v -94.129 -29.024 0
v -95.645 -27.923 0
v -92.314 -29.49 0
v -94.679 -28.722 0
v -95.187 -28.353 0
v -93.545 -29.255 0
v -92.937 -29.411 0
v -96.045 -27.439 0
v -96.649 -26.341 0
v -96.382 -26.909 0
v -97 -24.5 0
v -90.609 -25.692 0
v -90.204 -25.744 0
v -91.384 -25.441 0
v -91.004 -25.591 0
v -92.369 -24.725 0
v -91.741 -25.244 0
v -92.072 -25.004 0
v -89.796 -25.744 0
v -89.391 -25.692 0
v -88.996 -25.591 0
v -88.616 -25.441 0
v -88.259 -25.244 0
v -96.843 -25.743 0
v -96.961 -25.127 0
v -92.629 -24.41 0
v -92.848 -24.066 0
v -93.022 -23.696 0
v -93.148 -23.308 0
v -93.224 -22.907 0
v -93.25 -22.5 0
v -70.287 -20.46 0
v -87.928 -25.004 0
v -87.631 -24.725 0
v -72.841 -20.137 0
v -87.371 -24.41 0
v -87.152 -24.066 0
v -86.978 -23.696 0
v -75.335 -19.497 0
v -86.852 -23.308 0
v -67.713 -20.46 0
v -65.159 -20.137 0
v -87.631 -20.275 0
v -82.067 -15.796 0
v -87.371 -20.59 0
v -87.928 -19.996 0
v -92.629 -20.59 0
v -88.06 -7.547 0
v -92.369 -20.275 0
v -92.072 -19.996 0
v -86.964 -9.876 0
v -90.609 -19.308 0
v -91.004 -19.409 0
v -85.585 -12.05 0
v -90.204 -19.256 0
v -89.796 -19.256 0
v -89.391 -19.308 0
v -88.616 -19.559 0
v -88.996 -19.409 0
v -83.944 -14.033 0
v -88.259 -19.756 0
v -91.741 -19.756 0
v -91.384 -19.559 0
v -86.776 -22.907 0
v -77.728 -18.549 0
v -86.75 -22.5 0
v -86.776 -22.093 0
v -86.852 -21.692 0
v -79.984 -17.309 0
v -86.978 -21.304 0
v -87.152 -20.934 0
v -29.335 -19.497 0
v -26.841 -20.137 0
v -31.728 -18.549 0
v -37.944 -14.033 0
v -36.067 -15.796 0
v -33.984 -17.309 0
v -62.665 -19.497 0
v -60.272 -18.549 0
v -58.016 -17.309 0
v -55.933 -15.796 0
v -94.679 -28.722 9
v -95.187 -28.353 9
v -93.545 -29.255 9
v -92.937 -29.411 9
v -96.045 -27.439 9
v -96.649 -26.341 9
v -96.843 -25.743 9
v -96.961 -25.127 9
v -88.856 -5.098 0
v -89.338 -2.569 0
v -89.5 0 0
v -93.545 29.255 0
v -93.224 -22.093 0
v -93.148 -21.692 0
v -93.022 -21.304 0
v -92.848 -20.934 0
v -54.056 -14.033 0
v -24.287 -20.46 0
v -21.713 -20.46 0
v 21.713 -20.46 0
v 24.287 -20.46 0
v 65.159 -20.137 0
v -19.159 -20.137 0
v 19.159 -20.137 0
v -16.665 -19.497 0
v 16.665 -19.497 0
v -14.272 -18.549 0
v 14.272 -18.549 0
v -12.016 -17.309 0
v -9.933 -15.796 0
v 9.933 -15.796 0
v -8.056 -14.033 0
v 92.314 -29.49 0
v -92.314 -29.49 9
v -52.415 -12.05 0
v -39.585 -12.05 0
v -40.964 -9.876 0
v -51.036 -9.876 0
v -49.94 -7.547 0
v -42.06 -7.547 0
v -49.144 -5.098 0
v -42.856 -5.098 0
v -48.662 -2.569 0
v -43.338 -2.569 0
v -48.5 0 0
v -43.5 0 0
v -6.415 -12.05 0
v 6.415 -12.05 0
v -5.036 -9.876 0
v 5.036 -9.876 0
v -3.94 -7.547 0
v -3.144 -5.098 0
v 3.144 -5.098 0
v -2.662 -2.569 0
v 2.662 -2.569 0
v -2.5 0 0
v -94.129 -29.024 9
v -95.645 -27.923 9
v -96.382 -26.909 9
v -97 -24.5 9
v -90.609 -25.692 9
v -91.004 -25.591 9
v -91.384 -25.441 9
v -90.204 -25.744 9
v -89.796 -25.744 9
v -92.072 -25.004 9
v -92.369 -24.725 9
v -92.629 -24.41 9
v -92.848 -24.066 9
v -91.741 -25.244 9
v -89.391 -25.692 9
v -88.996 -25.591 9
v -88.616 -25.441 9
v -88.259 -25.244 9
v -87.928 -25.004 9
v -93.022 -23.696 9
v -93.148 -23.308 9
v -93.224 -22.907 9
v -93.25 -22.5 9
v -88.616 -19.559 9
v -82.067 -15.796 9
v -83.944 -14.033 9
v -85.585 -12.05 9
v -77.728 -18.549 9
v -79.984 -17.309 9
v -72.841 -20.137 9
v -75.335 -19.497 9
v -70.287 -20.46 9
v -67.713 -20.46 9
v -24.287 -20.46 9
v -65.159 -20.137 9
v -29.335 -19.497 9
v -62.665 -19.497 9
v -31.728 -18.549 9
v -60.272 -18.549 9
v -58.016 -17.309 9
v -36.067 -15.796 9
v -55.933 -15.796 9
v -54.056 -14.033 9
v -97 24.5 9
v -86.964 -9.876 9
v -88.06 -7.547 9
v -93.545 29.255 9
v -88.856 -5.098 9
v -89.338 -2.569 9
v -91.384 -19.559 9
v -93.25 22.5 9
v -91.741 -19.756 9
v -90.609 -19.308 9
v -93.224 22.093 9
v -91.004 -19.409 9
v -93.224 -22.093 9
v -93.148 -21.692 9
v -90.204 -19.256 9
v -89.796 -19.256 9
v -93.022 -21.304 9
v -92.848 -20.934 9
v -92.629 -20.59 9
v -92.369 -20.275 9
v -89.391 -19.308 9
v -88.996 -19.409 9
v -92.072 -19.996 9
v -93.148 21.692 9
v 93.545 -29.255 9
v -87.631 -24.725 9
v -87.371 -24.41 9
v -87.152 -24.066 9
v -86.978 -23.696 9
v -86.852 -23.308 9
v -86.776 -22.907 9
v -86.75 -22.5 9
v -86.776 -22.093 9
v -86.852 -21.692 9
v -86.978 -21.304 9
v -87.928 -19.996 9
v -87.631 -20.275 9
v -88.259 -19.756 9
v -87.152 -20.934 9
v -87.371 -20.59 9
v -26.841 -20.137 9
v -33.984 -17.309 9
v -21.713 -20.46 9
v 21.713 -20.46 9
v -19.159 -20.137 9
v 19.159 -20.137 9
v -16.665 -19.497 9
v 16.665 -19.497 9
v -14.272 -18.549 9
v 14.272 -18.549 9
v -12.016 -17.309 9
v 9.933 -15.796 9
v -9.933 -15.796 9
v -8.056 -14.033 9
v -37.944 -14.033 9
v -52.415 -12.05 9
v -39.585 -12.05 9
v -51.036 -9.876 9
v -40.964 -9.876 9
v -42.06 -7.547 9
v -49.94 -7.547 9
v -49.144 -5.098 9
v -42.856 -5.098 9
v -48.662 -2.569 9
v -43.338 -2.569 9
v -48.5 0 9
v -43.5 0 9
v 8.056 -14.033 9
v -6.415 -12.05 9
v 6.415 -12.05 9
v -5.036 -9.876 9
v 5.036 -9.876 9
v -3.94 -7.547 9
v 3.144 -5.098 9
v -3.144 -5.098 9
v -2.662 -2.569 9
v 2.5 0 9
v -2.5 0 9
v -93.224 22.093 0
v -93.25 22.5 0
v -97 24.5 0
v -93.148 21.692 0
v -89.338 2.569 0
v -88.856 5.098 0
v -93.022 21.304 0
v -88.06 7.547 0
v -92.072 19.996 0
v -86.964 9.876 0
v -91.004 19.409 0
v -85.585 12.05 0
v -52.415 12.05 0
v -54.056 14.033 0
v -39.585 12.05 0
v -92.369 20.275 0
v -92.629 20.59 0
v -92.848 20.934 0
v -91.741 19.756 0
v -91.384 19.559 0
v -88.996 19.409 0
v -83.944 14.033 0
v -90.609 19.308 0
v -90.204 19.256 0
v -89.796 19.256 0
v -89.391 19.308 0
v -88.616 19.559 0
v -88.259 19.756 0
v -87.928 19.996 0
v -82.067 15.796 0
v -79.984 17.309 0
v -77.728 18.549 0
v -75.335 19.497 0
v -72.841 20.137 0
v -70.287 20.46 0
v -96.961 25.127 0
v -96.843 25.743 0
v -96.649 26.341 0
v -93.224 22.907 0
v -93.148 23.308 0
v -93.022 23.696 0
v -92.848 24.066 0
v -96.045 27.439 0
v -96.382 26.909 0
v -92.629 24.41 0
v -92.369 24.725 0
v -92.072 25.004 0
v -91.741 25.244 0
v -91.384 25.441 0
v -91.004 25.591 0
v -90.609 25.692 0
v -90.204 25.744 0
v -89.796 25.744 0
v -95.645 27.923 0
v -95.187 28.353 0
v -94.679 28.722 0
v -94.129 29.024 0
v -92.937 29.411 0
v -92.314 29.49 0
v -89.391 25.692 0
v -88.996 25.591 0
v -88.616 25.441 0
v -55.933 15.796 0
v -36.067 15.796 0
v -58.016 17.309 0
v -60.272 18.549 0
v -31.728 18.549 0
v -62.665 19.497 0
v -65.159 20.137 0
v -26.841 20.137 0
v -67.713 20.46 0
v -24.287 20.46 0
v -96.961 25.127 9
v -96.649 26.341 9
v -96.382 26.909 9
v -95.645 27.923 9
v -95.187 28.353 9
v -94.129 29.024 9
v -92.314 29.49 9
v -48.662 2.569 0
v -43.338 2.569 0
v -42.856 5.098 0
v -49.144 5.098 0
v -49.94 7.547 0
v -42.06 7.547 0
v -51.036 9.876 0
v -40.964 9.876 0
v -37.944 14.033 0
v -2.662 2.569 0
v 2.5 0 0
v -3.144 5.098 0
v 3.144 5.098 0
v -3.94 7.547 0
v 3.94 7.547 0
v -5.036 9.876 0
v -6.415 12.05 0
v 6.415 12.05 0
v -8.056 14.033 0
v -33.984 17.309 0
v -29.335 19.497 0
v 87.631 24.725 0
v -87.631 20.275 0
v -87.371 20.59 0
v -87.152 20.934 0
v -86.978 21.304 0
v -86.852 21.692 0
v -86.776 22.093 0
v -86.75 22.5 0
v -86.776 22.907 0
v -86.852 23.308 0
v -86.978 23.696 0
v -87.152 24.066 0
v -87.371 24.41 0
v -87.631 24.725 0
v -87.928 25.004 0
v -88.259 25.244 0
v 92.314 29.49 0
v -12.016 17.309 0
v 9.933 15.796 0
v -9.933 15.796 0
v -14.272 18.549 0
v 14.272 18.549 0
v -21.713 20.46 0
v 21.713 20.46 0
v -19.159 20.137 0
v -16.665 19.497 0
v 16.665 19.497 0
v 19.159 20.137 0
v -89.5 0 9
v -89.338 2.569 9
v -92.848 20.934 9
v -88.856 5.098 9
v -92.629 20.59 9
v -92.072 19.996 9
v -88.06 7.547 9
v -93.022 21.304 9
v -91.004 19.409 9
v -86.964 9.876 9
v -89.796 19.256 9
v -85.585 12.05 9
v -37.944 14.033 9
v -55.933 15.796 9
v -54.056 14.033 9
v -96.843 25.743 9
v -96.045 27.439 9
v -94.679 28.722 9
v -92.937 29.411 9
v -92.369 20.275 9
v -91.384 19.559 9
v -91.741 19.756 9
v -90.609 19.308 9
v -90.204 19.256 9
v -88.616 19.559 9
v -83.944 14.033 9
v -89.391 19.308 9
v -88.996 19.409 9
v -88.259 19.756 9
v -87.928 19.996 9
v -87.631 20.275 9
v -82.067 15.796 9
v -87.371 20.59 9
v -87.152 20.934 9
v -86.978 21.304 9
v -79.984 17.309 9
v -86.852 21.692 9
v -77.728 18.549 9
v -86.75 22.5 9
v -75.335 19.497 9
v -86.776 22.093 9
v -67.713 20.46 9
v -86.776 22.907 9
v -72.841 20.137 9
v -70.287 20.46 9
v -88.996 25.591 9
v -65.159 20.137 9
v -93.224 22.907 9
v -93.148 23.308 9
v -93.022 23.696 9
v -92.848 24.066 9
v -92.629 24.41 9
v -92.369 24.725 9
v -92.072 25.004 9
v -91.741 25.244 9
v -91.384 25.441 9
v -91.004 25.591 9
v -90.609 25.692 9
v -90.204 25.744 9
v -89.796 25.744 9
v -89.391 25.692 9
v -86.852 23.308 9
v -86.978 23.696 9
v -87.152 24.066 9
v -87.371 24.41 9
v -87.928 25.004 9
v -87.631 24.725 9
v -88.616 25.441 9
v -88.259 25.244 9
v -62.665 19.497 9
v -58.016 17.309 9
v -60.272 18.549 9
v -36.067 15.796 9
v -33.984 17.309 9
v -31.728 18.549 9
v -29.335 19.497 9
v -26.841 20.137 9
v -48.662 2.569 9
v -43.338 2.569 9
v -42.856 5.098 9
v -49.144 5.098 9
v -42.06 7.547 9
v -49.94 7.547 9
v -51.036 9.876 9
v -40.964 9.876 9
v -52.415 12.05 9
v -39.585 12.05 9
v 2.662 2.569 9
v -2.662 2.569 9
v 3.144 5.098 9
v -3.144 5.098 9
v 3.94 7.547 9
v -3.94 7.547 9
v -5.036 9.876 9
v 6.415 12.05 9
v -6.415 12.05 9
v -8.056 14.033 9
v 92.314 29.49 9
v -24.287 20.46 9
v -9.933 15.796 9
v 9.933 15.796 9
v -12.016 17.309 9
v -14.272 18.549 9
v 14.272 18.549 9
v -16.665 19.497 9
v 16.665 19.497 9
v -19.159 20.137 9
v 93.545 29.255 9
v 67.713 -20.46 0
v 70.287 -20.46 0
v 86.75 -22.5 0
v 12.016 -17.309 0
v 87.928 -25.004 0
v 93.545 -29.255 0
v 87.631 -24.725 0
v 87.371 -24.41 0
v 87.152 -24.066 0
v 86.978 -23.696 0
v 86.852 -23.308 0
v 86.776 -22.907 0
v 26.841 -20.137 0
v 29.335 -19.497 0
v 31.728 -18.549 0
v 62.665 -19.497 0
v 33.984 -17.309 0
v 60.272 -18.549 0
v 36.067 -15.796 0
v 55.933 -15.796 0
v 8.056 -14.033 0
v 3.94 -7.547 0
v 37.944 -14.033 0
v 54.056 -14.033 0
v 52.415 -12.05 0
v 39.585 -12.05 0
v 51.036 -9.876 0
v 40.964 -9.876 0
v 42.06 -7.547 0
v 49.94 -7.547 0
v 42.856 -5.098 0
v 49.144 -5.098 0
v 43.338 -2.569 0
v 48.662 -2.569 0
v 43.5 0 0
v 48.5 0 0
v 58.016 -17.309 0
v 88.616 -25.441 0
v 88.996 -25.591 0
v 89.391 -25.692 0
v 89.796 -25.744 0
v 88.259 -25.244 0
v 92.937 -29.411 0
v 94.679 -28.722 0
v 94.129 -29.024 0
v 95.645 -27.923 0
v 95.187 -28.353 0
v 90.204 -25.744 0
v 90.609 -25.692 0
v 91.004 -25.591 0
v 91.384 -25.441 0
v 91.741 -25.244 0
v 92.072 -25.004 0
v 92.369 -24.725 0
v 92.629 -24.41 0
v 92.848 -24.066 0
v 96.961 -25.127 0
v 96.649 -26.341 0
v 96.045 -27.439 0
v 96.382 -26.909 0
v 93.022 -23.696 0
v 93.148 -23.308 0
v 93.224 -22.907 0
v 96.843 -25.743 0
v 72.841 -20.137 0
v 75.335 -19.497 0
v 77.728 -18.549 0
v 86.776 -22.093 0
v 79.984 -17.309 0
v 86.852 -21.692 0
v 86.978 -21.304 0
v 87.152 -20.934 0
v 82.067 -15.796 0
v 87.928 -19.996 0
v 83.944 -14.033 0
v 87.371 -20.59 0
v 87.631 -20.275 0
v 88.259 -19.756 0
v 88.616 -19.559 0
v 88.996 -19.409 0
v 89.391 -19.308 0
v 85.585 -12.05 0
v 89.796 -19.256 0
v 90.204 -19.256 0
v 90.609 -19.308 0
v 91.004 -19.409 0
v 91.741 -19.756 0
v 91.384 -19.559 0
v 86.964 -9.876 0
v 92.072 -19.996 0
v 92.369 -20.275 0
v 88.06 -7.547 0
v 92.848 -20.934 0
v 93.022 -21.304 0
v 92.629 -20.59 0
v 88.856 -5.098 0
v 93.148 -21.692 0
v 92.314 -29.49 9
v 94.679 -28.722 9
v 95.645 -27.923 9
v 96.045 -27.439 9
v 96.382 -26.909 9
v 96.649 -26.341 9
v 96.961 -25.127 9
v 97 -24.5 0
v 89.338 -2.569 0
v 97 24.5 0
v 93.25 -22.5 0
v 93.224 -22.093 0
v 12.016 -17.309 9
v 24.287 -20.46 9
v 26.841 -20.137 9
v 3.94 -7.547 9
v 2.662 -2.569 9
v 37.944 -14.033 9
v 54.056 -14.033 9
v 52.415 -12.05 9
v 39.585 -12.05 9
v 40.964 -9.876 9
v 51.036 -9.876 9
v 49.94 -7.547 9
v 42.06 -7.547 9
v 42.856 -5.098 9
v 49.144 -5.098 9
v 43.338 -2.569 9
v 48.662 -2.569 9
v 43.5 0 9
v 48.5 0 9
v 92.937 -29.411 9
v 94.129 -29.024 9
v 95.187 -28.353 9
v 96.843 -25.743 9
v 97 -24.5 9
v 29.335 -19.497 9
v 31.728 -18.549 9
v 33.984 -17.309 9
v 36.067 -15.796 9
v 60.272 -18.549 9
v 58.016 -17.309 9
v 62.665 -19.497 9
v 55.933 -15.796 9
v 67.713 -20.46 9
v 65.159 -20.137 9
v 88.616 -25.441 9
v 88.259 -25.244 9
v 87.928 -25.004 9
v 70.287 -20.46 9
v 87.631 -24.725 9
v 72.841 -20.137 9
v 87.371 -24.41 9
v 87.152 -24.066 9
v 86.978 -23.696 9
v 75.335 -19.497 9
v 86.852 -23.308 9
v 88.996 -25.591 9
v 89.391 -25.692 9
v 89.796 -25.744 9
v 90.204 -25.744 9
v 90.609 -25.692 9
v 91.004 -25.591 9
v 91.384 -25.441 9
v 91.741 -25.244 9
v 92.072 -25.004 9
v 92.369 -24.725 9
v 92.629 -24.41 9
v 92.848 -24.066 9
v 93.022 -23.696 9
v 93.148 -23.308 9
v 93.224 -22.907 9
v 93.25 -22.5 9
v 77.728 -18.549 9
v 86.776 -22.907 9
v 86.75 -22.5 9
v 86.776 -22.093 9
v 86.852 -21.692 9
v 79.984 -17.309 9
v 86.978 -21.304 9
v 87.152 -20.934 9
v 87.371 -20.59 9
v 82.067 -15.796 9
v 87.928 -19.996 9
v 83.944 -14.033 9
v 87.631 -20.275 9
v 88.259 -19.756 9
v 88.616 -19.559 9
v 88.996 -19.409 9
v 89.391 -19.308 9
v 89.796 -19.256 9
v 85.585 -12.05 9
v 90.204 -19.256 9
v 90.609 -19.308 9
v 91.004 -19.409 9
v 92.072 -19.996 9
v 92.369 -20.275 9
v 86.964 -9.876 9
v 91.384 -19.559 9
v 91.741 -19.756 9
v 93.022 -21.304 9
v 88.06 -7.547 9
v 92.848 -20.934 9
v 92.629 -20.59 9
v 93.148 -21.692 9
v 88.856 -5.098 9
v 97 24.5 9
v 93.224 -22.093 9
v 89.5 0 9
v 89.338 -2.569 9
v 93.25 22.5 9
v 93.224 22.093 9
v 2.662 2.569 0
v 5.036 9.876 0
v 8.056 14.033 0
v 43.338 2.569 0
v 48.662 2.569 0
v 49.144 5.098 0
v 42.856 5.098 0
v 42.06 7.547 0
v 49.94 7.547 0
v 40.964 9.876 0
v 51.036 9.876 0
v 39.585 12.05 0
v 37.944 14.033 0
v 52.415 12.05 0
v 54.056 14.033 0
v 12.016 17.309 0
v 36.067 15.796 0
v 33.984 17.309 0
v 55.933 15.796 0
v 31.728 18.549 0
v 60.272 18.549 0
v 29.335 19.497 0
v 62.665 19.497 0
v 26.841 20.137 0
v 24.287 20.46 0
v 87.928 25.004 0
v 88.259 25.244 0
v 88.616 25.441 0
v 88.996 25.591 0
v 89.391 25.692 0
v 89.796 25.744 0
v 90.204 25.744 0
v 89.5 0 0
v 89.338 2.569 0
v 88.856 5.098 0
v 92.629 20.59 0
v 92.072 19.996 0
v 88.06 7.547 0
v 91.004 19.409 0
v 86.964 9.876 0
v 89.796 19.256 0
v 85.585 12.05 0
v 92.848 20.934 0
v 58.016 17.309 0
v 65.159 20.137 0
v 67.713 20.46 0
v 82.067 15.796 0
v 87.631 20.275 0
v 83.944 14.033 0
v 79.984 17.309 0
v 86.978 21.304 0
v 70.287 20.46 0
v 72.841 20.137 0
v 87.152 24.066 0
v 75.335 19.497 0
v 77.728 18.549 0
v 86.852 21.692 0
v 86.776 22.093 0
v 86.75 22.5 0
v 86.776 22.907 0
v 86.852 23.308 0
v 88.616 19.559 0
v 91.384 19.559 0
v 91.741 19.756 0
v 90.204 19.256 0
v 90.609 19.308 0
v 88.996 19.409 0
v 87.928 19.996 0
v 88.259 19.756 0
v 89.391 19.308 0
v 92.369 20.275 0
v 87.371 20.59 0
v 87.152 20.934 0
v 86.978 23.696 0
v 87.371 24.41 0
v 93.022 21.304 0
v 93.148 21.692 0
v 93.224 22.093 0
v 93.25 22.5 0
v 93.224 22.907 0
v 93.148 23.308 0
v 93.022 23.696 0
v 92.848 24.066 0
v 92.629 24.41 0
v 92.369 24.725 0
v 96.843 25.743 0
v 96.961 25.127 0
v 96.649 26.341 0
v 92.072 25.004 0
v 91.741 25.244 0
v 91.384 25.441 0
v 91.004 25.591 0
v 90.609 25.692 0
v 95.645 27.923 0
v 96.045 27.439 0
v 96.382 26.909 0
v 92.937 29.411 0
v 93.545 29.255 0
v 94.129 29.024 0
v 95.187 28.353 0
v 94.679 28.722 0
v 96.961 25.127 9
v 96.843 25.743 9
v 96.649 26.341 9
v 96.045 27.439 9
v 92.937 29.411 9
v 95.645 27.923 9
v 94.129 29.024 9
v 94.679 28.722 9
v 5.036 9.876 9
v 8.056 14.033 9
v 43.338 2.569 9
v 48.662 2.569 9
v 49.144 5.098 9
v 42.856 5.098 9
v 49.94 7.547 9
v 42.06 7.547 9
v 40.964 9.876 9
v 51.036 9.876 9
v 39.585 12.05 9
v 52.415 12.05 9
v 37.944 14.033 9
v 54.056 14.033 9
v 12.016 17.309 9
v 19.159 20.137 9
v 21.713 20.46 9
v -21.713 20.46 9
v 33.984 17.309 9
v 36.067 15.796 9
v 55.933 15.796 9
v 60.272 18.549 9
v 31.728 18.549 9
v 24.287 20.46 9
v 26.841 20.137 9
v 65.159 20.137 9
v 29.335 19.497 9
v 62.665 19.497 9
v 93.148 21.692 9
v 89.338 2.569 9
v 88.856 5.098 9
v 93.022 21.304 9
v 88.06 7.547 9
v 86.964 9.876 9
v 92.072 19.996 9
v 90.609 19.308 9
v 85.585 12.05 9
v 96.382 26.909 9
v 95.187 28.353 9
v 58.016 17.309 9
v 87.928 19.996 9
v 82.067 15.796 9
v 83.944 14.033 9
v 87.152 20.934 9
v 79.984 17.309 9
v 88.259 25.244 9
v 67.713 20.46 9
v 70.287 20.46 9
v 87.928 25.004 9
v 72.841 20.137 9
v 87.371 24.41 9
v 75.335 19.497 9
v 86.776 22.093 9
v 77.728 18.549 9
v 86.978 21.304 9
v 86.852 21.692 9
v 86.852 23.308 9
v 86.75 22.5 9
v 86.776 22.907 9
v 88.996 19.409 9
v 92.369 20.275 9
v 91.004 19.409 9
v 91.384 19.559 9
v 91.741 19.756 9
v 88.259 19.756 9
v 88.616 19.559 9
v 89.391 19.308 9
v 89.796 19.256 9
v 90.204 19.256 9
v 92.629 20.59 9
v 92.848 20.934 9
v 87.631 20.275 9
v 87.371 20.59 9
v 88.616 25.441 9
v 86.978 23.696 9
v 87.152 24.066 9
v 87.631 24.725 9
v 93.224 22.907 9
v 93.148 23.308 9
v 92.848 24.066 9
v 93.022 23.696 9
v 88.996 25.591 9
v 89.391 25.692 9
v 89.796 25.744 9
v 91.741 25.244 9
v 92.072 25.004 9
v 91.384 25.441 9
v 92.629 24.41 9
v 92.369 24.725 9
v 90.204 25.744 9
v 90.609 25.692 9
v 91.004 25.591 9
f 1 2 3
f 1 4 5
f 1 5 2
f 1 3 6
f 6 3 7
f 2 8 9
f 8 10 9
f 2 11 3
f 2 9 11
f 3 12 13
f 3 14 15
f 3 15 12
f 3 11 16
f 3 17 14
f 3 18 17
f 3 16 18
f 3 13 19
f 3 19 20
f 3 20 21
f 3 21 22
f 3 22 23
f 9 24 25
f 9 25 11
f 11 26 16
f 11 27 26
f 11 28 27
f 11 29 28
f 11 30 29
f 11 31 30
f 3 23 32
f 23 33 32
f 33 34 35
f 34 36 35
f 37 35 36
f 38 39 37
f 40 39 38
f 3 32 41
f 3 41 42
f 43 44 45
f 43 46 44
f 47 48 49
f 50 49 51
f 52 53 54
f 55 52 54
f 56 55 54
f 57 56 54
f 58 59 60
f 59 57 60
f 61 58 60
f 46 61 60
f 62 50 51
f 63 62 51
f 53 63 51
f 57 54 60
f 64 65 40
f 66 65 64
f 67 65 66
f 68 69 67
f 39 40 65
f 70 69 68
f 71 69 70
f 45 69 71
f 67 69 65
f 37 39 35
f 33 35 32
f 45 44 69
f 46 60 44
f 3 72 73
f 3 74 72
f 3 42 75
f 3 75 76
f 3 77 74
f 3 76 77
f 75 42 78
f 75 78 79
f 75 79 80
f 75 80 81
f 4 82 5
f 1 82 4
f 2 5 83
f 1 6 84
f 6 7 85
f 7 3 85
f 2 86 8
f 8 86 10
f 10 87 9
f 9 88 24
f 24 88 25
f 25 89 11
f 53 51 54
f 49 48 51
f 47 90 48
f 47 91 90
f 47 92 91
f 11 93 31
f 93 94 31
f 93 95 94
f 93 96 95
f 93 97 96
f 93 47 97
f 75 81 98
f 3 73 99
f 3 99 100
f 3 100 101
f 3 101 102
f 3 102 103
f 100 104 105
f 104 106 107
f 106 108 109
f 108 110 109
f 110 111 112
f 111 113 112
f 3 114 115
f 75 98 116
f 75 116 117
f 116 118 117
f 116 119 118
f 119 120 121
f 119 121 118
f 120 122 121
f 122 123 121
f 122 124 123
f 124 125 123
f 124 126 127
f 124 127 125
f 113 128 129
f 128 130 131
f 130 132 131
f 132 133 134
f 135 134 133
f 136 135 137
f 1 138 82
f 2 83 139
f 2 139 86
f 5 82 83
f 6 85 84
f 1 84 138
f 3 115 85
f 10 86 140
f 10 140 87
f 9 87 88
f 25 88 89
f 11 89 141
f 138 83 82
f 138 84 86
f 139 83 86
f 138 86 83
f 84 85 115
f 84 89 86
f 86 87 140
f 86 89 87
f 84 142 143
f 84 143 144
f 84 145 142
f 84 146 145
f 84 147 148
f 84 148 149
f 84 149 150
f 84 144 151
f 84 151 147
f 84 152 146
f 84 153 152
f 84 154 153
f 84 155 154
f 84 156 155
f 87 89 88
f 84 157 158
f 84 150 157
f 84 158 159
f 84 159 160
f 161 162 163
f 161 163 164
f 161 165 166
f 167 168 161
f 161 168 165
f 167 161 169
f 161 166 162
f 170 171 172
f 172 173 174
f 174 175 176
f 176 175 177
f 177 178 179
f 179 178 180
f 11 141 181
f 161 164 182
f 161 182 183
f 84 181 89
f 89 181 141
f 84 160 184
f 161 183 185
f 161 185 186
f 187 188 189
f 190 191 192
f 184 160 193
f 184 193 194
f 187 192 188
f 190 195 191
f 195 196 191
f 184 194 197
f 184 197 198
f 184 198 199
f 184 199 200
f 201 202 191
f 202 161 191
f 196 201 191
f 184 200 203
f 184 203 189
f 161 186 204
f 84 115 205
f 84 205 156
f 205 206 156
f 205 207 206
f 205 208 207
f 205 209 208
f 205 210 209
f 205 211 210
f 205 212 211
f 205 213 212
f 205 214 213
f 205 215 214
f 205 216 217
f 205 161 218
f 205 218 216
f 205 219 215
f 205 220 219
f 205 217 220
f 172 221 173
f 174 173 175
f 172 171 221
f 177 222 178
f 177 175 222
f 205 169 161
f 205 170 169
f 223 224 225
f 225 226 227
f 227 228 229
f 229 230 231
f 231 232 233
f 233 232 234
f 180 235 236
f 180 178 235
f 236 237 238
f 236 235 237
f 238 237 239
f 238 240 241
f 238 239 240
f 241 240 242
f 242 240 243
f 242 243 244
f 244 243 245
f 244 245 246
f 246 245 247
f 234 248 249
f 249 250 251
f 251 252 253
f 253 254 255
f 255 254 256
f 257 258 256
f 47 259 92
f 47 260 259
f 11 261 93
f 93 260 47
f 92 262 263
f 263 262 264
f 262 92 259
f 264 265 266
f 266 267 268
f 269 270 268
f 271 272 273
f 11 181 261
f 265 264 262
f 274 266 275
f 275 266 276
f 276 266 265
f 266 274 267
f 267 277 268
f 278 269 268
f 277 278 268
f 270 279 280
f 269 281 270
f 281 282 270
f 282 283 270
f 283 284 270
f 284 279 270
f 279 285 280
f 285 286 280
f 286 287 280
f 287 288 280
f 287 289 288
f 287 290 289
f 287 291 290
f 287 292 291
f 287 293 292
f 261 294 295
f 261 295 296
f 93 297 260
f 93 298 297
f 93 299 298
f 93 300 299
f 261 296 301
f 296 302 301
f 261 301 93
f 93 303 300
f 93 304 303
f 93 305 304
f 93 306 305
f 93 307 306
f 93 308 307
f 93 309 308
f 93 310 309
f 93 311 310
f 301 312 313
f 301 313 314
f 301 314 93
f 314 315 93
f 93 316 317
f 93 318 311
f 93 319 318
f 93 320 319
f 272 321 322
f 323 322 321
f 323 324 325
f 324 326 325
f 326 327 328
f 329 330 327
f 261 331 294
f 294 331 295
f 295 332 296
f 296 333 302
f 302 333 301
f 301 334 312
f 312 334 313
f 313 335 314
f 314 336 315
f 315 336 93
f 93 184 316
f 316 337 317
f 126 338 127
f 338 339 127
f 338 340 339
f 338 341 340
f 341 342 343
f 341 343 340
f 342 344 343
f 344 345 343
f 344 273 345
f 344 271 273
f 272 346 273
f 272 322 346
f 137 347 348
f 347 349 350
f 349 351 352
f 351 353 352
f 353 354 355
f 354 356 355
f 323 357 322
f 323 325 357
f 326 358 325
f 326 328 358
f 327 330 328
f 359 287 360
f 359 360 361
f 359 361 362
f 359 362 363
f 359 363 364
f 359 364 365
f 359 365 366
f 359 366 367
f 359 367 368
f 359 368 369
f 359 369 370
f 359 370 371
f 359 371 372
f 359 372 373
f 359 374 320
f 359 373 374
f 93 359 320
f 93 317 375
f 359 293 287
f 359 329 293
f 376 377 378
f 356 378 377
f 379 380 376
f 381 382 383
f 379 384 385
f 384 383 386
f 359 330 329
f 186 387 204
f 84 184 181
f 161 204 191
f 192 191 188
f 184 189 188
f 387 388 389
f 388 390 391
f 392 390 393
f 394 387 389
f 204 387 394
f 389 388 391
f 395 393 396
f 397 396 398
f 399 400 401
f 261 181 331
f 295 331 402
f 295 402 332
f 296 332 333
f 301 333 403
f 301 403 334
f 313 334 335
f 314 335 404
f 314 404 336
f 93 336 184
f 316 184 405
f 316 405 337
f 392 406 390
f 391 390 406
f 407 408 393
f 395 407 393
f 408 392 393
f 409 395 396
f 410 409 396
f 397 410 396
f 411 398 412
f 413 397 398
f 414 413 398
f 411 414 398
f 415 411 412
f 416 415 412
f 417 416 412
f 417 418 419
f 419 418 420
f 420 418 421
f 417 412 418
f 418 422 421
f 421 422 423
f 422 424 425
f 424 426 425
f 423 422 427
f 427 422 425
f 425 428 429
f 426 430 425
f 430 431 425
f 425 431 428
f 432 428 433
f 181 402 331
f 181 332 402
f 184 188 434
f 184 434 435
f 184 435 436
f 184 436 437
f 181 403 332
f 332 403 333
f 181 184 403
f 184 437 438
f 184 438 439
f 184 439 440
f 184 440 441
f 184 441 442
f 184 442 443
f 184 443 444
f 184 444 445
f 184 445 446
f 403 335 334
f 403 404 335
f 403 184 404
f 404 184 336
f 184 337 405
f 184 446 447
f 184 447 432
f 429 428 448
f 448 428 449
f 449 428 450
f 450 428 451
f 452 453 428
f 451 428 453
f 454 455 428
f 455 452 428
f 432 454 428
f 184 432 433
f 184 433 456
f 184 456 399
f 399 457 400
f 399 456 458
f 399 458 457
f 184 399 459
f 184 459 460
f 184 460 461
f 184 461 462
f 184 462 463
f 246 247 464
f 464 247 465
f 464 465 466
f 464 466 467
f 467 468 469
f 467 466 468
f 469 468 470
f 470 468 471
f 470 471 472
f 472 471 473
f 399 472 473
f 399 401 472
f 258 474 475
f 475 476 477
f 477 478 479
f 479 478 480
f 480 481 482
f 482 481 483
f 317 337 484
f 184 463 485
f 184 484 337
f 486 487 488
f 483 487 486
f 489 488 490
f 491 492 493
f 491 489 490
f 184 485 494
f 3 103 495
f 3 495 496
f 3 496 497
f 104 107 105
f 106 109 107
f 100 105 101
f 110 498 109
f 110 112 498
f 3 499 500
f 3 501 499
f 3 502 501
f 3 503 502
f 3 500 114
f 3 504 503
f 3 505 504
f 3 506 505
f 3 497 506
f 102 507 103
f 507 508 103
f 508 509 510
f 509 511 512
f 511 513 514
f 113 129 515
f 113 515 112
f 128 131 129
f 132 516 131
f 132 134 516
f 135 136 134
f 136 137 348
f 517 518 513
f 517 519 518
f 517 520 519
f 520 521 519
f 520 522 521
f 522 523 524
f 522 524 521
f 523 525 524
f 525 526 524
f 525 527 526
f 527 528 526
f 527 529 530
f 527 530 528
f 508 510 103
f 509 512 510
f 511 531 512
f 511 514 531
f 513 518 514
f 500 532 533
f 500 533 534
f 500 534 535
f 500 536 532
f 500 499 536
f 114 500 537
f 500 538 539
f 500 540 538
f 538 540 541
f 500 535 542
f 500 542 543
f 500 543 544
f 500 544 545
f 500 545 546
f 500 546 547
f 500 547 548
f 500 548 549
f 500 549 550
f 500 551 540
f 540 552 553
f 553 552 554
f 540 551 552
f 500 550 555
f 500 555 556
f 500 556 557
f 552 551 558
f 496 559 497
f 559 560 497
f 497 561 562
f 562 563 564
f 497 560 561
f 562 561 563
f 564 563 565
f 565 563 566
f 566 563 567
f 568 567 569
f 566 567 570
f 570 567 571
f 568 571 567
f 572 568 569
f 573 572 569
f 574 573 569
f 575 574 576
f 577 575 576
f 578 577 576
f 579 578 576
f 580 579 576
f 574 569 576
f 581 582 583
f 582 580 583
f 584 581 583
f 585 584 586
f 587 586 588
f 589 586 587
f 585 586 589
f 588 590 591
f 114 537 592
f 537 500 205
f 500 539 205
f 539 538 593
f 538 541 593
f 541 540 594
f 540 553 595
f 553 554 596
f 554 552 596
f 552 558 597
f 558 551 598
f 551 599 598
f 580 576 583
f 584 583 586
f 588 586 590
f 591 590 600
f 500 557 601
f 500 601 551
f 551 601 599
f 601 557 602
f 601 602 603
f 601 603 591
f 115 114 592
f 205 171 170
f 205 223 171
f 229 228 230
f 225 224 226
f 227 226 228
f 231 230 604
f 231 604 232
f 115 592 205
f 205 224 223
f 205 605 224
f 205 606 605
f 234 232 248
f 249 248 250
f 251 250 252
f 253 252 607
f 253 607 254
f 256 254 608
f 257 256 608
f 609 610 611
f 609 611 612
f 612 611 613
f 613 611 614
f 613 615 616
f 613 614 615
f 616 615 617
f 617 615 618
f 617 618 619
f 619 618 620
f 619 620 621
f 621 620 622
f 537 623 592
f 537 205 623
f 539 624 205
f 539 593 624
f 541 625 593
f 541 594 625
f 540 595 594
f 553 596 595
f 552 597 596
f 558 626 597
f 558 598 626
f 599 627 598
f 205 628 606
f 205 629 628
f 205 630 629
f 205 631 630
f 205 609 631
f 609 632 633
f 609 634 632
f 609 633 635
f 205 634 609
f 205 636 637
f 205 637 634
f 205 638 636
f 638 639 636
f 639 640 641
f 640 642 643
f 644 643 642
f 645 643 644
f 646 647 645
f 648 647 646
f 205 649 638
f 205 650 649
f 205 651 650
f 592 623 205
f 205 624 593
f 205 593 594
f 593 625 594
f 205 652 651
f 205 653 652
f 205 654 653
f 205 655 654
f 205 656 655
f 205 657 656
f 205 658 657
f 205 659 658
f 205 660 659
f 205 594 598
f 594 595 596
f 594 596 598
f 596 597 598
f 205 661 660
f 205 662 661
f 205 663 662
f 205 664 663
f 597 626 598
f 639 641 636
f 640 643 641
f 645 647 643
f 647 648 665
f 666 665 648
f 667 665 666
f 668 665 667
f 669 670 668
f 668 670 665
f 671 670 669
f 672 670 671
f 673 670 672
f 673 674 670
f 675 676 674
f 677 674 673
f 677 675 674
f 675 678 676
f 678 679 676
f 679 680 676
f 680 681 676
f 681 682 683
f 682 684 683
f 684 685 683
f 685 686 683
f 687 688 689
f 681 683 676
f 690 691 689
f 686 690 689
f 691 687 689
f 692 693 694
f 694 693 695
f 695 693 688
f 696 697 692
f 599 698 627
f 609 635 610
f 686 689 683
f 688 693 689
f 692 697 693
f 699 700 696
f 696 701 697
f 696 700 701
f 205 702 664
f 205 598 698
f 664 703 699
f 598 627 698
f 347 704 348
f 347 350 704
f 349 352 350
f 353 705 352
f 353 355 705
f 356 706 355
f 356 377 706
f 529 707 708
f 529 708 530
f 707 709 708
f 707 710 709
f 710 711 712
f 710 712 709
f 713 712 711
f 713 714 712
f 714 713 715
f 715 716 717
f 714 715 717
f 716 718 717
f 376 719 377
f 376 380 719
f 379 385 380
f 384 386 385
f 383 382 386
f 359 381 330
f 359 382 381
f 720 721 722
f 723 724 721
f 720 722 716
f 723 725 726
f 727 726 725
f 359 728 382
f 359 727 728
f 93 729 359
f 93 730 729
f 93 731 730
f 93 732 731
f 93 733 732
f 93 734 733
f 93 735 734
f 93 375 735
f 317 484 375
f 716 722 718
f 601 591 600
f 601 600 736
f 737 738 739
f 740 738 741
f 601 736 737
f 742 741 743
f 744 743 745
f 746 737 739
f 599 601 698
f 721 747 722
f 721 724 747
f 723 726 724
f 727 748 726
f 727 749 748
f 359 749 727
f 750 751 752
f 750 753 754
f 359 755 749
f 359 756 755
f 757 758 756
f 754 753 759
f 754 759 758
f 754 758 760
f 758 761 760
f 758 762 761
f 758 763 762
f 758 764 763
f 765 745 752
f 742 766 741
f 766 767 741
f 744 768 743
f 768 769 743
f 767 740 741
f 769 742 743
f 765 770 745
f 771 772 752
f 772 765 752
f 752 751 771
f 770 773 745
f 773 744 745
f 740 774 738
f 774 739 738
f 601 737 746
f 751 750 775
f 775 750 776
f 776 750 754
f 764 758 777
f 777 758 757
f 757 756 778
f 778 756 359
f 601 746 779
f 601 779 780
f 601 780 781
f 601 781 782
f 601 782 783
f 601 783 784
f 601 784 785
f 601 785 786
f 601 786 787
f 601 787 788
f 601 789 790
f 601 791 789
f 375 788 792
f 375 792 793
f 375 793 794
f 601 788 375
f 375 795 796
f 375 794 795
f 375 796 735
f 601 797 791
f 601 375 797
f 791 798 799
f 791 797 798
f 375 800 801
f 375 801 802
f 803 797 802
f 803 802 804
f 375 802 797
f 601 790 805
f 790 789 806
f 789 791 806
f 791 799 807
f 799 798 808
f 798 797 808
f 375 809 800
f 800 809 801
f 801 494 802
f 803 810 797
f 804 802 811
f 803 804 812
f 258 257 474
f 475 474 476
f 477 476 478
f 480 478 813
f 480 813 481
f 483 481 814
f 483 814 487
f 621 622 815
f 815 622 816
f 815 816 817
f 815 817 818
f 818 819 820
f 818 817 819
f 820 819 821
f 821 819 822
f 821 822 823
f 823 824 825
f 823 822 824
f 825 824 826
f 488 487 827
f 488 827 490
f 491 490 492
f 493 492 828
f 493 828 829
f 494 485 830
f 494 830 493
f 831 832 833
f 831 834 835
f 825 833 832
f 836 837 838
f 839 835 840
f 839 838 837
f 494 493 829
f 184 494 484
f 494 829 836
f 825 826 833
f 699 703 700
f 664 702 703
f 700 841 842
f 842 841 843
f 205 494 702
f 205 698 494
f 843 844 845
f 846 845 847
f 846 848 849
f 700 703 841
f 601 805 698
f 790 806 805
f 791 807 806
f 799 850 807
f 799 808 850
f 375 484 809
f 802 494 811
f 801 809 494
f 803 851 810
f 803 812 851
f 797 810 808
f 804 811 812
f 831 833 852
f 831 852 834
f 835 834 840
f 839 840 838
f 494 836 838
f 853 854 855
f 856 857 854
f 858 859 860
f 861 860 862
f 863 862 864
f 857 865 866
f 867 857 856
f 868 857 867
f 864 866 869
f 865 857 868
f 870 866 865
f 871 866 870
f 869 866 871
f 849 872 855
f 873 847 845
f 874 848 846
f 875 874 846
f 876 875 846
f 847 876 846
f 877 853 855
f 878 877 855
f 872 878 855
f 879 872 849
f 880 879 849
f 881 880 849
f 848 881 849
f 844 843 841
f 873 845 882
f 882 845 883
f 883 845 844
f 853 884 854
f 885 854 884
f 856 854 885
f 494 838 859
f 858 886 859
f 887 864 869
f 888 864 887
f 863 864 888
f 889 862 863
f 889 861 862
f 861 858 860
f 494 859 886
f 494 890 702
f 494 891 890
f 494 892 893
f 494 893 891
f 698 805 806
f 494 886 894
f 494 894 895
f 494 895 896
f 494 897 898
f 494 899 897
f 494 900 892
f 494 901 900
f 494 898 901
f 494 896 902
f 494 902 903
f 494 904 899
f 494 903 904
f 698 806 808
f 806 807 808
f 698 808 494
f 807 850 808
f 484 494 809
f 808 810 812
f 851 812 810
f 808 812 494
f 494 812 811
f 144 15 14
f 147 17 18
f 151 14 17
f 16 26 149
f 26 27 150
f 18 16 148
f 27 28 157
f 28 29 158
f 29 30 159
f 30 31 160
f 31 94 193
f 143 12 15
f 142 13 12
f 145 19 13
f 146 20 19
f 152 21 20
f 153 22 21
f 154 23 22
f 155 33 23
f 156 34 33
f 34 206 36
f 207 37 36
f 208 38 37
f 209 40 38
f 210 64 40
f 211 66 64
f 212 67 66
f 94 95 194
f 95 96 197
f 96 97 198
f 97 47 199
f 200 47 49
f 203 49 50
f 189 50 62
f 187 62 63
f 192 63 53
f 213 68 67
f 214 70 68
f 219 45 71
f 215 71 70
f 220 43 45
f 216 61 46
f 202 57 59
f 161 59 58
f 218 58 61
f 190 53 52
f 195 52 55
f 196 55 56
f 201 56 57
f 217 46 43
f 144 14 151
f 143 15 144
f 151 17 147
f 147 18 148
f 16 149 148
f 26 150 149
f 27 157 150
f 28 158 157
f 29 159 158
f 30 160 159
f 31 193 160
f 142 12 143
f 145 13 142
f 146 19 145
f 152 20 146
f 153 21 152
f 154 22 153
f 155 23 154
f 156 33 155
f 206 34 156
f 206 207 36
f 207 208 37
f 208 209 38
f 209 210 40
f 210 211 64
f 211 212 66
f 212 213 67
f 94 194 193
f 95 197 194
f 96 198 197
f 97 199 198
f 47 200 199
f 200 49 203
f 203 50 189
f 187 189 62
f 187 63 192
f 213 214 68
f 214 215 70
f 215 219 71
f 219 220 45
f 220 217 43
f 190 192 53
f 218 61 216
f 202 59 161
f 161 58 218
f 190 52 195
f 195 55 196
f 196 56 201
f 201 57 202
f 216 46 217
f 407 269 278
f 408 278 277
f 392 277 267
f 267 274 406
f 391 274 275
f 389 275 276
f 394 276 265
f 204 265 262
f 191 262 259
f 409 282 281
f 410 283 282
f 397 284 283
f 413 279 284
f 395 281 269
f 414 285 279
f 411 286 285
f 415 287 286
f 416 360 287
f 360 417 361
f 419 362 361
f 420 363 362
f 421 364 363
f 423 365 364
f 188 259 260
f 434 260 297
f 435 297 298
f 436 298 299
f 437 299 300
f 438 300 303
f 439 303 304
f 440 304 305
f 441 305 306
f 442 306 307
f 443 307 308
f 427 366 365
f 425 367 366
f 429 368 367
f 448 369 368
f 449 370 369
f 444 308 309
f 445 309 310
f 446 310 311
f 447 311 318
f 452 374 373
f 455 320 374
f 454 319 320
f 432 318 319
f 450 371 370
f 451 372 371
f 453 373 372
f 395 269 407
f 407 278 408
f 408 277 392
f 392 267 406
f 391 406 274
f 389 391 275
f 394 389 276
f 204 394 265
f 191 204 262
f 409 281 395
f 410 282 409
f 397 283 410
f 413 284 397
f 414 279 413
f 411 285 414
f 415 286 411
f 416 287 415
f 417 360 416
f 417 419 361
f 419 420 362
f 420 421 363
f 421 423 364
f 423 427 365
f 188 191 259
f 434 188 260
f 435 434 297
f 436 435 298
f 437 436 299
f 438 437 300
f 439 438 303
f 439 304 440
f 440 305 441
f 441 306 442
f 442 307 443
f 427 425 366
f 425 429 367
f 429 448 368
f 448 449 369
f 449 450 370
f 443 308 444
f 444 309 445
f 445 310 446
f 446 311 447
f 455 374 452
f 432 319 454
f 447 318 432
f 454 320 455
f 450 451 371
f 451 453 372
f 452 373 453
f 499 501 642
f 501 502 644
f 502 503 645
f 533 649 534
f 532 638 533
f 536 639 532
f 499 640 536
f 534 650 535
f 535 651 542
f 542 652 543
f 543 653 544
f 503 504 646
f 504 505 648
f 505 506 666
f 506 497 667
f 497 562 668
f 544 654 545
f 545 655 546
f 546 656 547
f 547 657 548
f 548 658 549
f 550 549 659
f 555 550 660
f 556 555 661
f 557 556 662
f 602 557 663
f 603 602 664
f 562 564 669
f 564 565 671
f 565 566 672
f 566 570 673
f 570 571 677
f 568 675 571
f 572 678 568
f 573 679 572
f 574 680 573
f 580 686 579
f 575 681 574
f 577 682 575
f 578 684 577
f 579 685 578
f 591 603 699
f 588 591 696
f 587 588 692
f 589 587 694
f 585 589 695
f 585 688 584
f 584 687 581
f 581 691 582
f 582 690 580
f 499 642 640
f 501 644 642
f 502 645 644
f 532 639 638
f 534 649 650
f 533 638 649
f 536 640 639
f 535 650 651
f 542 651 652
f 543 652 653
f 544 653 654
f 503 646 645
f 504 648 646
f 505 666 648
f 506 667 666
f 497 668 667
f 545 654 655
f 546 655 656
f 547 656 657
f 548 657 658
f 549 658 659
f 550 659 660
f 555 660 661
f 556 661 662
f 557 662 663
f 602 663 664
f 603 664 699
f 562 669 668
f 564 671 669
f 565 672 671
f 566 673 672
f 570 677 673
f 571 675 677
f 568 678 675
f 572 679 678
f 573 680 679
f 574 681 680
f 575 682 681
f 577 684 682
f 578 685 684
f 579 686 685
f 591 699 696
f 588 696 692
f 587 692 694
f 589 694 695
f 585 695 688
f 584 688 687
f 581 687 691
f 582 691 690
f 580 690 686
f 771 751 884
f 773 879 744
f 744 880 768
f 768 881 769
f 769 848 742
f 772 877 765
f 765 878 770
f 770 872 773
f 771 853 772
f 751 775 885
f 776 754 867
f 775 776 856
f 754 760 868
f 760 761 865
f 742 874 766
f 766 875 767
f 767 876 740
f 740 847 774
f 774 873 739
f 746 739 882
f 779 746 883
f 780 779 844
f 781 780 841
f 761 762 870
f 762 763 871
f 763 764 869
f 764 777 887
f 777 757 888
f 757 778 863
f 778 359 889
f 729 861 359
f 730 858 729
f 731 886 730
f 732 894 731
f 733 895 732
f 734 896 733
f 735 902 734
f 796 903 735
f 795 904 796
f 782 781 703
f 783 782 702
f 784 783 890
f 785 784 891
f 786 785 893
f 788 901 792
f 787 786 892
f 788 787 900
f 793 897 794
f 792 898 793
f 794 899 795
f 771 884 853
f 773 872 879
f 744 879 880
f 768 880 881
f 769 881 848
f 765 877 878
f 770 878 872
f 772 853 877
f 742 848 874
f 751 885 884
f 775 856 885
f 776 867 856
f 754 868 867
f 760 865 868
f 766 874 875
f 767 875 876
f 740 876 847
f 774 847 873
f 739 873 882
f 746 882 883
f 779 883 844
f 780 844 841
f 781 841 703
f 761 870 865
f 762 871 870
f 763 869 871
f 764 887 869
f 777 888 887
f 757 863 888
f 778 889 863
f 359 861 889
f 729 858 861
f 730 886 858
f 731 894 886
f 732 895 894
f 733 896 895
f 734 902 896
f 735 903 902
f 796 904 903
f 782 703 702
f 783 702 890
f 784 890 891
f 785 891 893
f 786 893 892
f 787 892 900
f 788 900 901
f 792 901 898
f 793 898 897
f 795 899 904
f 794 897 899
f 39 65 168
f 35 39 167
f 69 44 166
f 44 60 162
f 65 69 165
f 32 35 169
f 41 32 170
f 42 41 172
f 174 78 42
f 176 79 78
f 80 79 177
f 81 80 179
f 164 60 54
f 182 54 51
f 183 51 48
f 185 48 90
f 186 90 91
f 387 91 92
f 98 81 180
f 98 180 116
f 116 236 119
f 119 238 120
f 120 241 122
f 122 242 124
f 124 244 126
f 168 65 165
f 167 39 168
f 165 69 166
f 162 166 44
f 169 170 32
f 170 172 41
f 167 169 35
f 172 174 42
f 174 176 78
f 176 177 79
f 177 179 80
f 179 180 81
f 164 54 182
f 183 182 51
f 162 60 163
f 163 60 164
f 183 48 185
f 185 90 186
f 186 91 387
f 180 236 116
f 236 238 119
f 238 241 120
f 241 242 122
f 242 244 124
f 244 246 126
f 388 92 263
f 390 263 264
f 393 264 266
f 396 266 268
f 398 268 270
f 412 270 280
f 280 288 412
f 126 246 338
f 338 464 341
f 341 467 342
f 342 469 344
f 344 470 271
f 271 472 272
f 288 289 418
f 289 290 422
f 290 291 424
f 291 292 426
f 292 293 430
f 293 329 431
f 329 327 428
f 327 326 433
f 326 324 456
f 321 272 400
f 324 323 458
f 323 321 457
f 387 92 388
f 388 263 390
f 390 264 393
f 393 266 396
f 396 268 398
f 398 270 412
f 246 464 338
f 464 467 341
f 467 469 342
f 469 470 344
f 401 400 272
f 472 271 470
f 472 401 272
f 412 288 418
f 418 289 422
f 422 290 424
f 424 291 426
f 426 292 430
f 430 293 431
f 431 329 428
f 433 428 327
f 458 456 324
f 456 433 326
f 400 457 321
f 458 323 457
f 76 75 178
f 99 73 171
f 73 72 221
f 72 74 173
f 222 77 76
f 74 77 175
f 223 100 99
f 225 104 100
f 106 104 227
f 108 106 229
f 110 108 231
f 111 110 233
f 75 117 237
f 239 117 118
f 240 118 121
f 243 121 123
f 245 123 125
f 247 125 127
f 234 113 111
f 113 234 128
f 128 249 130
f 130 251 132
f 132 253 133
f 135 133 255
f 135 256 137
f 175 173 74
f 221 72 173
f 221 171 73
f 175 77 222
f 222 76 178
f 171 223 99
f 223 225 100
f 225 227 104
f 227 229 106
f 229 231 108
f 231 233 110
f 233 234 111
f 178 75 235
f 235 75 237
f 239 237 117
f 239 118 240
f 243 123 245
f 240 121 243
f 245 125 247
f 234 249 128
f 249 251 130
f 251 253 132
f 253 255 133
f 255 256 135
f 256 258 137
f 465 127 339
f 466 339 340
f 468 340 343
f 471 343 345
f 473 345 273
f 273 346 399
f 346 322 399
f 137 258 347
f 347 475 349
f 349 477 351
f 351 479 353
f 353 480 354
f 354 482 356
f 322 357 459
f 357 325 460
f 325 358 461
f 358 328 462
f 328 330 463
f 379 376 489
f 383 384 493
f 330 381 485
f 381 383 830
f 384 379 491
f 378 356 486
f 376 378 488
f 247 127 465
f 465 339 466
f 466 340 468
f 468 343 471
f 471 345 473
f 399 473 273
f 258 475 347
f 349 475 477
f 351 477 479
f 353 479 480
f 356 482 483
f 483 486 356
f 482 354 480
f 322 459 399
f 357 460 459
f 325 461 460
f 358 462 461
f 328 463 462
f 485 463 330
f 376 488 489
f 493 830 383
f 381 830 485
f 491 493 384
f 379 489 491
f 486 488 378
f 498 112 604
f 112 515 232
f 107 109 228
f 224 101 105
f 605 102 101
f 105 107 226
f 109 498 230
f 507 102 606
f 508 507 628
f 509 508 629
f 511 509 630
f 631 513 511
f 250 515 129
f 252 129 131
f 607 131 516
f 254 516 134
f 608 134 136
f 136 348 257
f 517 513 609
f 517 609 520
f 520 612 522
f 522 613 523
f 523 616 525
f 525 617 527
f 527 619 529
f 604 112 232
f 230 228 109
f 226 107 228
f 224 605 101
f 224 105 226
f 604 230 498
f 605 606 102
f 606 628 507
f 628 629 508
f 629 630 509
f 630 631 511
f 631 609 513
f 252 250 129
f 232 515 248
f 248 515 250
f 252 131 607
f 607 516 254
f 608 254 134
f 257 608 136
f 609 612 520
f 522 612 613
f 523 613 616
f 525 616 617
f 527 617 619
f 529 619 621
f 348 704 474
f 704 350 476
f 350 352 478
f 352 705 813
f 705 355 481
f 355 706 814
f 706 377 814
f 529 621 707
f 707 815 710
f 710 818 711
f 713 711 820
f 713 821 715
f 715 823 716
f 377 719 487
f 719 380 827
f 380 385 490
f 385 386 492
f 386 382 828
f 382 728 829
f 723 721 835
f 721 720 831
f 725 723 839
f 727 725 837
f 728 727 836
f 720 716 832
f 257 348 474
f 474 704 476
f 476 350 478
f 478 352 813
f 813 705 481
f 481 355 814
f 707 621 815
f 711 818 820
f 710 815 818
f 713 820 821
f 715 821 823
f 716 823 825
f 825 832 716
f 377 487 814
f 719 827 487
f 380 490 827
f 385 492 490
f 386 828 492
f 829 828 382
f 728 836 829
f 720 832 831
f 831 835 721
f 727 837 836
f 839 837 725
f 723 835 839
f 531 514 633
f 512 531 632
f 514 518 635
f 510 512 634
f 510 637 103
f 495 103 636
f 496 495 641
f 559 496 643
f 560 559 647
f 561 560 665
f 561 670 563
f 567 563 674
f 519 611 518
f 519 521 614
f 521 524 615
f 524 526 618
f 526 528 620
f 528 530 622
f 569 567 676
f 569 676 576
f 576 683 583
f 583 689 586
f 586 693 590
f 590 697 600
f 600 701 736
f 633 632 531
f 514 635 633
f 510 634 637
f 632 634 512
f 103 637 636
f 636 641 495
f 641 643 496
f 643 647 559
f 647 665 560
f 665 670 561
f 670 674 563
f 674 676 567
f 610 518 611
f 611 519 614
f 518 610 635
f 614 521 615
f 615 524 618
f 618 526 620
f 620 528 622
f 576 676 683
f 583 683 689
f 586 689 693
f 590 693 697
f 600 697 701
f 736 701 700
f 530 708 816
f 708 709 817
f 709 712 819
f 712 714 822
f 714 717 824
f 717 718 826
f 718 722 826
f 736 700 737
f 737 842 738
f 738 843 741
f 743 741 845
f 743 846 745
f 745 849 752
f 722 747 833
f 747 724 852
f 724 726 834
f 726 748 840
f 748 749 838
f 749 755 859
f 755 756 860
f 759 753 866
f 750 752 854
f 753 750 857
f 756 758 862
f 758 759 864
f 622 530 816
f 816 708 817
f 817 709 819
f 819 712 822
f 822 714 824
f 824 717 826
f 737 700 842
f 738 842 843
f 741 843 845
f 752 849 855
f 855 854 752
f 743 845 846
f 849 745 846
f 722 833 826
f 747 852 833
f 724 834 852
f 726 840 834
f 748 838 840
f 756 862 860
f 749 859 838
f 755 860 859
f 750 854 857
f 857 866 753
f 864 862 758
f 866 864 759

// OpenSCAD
$fn = 50;

difference() {
	union() {
		hull() {
			translate(v = [-92.0, 24.5, 0]) {
				cylinder(h = 9, r = 5);
			}
			translate(v = [92.0, 24.5, 0]) {
				cylinder(h = 9, r = 5);
			}
			translate(v = [-92.0, -24.5, 0]) {
				cylinder(h = 9, r = 5);
			}
			translate(v = [92.0, -24.5, 0]) {
				cylinder(h = 9, r = 5);
			}
		}
	}
	union() {
		translate(v = [-90.0, -22.5, -100.0]) {
			cylinder(h = 200, r = 3.25);
		}
		translate(v = [-90.0, 22.5, -100.0]) {
			cylinder(h = 200, r = 3.25);
		}
		translate(v = [90.0, -22.5, -100.0]) {
			cylinder(h = 200, r = 3.25);
		}
		translate(v = [90.0, 22.5, -100.0]) {
			cylinder(h = 200, r = 3.25);
		}
		translate(v = [-90.0, -22.5, -100.0]) {
			cylinder(h = 200, r = 1.8);
		}
		translate(v = [-90.0, 22.5, -100.0]) {
			cylinder(h = 200, r = 1.8);
		}
		translate(v = [90.0, -22.5, -100.0]) {
			cylinder(h = 200, r = 1.8);
		}
		translate(v = [90.0, 22.5, -100.0]) {
			cylinder(h = 200, r = 1.8);
		}
		translate(v = [-69.0, 0, 0.0]) {
			cylinder(h = 9, r = 20.5);
		}
		translate(v = [-23.0, 0, 0.0]) {
			cylinder(h = 9, r = 20.5);
		}
		translate(v = [23.0, 0, 0.0]) {
			cylinder(h = 9, r = 20.5);
		}
		translate(v = [69.0, 0, 0.0]) {
			cylinder(h = 9, r = 20.5);
		}
	}
}
